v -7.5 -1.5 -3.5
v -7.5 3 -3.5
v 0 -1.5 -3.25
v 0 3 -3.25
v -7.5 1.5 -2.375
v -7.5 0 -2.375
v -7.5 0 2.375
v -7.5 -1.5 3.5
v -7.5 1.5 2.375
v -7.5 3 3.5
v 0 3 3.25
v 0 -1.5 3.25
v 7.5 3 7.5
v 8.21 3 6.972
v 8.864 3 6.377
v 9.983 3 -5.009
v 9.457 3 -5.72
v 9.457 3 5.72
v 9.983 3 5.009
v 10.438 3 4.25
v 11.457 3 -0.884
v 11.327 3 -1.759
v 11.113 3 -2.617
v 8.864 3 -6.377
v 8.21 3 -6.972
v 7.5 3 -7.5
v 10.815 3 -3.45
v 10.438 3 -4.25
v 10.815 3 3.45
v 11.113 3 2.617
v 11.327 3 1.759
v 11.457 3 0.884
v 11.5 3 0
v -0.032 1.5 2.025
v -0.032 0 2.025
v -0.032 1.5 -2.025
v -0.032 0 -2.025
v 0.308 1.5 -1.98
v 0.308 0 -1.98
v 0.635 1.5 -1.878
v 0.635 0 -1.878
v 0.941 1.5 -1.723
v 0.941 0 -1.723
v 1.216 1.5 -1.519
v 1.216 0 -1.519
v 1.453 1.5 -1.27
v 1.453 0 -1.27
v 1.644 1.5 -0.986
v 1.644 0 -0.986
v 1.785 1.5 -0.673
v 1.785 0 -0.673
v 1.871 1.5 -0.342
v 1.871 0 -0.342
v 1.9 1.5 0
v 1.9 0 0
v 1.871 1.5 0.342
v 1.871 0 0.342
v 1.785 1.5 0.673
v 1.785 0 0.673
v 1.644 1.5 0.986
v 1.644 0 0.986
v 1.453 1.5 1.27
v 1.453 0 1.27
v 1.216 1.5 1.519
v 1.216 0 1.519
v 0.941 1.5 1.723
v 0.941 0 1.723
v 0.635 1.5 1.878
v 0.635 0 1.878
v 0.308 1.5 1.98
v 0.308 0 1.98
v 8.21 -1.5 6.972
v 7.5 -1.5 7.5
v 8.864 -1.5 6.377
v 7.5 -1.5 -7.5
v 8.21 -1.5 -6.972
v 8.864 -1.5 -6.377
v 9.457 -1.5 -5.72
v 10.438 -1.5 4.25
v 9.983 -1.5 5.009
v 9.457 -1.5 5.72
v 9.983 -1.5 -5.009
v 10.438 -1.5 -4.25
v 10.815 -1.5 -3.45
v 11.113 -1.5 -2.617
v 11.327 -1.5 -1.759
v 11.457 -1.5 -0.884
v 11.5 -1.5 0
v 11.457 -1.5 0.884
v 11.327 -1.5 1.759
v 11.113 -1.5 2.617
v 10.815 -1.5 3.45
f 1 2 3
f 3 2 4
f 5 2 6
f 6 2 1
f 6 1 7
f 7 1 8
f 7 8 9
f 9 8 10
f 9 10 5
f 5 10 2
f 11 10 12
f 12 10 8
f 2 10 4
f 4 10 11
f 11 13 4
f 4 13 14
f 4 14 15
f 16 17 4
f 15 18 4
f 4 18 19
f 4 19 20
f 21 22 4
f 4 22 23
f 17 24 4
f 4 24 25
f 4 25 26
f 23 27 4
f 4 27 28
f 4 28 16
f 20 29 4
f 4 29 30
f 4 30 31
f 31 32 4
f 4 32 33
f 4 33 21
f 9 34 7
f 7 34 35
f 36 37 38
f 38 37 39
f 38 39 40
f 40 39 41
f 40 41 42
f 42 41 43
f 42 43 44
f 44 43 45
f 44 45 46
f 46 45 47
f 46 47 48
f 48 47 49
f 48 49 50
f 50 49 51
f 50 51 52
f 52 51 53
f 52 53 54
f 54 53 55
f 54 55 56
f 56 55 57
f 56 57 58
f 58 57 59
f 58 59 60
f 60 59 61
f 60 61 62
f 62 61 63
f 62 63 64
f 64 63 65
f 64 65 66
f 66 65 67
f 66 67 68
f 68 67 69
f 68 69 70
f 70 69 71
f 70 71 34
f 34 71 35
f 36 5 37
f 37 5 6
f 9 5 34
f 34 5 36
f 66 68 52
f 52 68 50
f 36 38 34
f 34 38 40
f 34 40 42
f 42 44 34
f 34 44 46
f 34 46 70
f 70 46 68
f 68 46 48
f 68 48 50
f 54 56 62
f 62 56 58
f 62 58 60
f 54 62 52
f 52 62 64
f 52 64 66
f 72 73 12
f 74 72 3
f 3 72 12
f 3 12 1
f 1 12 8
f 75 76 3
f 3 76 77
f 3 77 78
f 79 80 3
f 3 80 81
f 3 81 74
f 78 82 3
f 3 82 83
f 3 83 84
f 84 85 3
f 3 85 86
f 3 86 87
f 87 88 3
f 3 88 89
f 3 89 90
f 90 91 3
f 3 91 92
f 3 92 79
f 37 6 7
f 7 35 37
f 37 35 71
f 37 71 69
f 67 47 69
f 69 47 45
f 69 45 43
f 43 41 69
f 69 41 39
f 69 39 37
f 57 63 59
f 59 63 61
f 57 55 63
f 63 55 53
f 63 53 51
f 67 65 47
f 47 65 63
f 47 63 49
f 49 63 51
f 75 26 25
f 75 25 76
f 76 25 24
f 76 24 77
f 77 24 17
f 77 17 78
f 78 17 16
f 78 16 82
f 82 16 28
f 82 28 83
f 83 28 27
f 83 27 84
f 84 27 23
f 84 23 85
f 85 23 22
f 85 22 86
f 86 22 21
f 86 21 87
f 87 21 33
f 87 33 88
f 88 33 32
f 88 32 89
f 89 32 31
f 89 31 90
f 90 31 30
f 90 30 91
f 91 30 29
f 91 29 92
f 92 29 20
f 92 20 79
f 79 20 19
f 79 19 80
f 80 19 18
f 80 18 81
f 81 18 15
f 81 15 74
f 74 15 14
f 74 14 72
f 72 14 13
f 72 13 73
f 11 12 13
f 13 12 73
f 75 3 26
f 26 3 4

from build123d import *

# Parameters (mm, degrees)
BOSS_EXTRUDE1_DEPTH = 3
CUT_EXTRUDE1_DEPTH  = 1.5
BOSS_EXTRUDE2_DEPTH = 1.5
BOSS_EXTRUDE3_DEPTH = 4.5
BOSS_EXTRUDE4_DEPTH = 4.5


with BuildPart() as part:
    # Sketch1 → Boss-Extrude1 (new body)
    with BuildSketch(Plane(origin=(0, 0, 0), x_dir=(1, 0, 0), z_dir=(0, 1, 0))):
        Polygon((-7.5, 3.5), (-7.5, -3.5), (7.5, -3), (7.5, 3), align=None)
    extrude(amount=BOSS_EXTRUDE1_DEPTH)

    # Sketch2 → Cut-Extrude1 (cut)
    with BuildSketch(Plane.XZ):
        with BuildLine():
            Line((-7.5, 2.375), (-7.5, -2.375))
            Line((-7.5, -2.375), (-0.032313986, -2.025))
            ThreePointArc((-0.032313986, -2.025), (1.9, 0), (-0.032313986, 2.025))
            Line((-0.032313986, 2.025), (-7.5, 2.375))
        make_face()
    extrude(amount=-CUT_EXTRUDE1_DEPTH, mode=Mode.SUBTRACT)

    # Sketch4 → Boss-Extrude2 (add)
    with BuildSketch(Plane.XZ):
        Polygon((-7.5, -3.5), (7.5, -3), (7.5, 3), (-7.5, 3.5), align=None)
    extrude(amount=BOSS_EXTRUDE2_DEPTH)

    # Sketch6 → Boss-Extrude3 (add)
    with BuildSketch(Plane(origin=(0, 3, 0), x_dir=(1, 0, 0), z_dir=(0, 1, 0))):
        with BuildLine():
            Line((7.5, 7.5), (7.5, -7.5))
            ThreePointArc((7.5, -7.5), (11.5, 0), (7.5, 7.5))
        make_face()
    extrude(amount=-BOSS_EXTRUDE3_DEPTH)

    # Sketch7 → Boss-Extrude4 (add)
    with BuildSketch(Plane.XZ.offset(1.5)):
        Polygon((7.5, 7.5), (0, 3.25), (7.5, 3), align=None)
    boss_extrude4 = extrude(amount=-BOSS_EXTRUDE4_DEPTH)

    # Mirror1: Boss-Extrude4 across plane
    add(boss_extrude4.mirror(Plane.XY))


solid = part.part
